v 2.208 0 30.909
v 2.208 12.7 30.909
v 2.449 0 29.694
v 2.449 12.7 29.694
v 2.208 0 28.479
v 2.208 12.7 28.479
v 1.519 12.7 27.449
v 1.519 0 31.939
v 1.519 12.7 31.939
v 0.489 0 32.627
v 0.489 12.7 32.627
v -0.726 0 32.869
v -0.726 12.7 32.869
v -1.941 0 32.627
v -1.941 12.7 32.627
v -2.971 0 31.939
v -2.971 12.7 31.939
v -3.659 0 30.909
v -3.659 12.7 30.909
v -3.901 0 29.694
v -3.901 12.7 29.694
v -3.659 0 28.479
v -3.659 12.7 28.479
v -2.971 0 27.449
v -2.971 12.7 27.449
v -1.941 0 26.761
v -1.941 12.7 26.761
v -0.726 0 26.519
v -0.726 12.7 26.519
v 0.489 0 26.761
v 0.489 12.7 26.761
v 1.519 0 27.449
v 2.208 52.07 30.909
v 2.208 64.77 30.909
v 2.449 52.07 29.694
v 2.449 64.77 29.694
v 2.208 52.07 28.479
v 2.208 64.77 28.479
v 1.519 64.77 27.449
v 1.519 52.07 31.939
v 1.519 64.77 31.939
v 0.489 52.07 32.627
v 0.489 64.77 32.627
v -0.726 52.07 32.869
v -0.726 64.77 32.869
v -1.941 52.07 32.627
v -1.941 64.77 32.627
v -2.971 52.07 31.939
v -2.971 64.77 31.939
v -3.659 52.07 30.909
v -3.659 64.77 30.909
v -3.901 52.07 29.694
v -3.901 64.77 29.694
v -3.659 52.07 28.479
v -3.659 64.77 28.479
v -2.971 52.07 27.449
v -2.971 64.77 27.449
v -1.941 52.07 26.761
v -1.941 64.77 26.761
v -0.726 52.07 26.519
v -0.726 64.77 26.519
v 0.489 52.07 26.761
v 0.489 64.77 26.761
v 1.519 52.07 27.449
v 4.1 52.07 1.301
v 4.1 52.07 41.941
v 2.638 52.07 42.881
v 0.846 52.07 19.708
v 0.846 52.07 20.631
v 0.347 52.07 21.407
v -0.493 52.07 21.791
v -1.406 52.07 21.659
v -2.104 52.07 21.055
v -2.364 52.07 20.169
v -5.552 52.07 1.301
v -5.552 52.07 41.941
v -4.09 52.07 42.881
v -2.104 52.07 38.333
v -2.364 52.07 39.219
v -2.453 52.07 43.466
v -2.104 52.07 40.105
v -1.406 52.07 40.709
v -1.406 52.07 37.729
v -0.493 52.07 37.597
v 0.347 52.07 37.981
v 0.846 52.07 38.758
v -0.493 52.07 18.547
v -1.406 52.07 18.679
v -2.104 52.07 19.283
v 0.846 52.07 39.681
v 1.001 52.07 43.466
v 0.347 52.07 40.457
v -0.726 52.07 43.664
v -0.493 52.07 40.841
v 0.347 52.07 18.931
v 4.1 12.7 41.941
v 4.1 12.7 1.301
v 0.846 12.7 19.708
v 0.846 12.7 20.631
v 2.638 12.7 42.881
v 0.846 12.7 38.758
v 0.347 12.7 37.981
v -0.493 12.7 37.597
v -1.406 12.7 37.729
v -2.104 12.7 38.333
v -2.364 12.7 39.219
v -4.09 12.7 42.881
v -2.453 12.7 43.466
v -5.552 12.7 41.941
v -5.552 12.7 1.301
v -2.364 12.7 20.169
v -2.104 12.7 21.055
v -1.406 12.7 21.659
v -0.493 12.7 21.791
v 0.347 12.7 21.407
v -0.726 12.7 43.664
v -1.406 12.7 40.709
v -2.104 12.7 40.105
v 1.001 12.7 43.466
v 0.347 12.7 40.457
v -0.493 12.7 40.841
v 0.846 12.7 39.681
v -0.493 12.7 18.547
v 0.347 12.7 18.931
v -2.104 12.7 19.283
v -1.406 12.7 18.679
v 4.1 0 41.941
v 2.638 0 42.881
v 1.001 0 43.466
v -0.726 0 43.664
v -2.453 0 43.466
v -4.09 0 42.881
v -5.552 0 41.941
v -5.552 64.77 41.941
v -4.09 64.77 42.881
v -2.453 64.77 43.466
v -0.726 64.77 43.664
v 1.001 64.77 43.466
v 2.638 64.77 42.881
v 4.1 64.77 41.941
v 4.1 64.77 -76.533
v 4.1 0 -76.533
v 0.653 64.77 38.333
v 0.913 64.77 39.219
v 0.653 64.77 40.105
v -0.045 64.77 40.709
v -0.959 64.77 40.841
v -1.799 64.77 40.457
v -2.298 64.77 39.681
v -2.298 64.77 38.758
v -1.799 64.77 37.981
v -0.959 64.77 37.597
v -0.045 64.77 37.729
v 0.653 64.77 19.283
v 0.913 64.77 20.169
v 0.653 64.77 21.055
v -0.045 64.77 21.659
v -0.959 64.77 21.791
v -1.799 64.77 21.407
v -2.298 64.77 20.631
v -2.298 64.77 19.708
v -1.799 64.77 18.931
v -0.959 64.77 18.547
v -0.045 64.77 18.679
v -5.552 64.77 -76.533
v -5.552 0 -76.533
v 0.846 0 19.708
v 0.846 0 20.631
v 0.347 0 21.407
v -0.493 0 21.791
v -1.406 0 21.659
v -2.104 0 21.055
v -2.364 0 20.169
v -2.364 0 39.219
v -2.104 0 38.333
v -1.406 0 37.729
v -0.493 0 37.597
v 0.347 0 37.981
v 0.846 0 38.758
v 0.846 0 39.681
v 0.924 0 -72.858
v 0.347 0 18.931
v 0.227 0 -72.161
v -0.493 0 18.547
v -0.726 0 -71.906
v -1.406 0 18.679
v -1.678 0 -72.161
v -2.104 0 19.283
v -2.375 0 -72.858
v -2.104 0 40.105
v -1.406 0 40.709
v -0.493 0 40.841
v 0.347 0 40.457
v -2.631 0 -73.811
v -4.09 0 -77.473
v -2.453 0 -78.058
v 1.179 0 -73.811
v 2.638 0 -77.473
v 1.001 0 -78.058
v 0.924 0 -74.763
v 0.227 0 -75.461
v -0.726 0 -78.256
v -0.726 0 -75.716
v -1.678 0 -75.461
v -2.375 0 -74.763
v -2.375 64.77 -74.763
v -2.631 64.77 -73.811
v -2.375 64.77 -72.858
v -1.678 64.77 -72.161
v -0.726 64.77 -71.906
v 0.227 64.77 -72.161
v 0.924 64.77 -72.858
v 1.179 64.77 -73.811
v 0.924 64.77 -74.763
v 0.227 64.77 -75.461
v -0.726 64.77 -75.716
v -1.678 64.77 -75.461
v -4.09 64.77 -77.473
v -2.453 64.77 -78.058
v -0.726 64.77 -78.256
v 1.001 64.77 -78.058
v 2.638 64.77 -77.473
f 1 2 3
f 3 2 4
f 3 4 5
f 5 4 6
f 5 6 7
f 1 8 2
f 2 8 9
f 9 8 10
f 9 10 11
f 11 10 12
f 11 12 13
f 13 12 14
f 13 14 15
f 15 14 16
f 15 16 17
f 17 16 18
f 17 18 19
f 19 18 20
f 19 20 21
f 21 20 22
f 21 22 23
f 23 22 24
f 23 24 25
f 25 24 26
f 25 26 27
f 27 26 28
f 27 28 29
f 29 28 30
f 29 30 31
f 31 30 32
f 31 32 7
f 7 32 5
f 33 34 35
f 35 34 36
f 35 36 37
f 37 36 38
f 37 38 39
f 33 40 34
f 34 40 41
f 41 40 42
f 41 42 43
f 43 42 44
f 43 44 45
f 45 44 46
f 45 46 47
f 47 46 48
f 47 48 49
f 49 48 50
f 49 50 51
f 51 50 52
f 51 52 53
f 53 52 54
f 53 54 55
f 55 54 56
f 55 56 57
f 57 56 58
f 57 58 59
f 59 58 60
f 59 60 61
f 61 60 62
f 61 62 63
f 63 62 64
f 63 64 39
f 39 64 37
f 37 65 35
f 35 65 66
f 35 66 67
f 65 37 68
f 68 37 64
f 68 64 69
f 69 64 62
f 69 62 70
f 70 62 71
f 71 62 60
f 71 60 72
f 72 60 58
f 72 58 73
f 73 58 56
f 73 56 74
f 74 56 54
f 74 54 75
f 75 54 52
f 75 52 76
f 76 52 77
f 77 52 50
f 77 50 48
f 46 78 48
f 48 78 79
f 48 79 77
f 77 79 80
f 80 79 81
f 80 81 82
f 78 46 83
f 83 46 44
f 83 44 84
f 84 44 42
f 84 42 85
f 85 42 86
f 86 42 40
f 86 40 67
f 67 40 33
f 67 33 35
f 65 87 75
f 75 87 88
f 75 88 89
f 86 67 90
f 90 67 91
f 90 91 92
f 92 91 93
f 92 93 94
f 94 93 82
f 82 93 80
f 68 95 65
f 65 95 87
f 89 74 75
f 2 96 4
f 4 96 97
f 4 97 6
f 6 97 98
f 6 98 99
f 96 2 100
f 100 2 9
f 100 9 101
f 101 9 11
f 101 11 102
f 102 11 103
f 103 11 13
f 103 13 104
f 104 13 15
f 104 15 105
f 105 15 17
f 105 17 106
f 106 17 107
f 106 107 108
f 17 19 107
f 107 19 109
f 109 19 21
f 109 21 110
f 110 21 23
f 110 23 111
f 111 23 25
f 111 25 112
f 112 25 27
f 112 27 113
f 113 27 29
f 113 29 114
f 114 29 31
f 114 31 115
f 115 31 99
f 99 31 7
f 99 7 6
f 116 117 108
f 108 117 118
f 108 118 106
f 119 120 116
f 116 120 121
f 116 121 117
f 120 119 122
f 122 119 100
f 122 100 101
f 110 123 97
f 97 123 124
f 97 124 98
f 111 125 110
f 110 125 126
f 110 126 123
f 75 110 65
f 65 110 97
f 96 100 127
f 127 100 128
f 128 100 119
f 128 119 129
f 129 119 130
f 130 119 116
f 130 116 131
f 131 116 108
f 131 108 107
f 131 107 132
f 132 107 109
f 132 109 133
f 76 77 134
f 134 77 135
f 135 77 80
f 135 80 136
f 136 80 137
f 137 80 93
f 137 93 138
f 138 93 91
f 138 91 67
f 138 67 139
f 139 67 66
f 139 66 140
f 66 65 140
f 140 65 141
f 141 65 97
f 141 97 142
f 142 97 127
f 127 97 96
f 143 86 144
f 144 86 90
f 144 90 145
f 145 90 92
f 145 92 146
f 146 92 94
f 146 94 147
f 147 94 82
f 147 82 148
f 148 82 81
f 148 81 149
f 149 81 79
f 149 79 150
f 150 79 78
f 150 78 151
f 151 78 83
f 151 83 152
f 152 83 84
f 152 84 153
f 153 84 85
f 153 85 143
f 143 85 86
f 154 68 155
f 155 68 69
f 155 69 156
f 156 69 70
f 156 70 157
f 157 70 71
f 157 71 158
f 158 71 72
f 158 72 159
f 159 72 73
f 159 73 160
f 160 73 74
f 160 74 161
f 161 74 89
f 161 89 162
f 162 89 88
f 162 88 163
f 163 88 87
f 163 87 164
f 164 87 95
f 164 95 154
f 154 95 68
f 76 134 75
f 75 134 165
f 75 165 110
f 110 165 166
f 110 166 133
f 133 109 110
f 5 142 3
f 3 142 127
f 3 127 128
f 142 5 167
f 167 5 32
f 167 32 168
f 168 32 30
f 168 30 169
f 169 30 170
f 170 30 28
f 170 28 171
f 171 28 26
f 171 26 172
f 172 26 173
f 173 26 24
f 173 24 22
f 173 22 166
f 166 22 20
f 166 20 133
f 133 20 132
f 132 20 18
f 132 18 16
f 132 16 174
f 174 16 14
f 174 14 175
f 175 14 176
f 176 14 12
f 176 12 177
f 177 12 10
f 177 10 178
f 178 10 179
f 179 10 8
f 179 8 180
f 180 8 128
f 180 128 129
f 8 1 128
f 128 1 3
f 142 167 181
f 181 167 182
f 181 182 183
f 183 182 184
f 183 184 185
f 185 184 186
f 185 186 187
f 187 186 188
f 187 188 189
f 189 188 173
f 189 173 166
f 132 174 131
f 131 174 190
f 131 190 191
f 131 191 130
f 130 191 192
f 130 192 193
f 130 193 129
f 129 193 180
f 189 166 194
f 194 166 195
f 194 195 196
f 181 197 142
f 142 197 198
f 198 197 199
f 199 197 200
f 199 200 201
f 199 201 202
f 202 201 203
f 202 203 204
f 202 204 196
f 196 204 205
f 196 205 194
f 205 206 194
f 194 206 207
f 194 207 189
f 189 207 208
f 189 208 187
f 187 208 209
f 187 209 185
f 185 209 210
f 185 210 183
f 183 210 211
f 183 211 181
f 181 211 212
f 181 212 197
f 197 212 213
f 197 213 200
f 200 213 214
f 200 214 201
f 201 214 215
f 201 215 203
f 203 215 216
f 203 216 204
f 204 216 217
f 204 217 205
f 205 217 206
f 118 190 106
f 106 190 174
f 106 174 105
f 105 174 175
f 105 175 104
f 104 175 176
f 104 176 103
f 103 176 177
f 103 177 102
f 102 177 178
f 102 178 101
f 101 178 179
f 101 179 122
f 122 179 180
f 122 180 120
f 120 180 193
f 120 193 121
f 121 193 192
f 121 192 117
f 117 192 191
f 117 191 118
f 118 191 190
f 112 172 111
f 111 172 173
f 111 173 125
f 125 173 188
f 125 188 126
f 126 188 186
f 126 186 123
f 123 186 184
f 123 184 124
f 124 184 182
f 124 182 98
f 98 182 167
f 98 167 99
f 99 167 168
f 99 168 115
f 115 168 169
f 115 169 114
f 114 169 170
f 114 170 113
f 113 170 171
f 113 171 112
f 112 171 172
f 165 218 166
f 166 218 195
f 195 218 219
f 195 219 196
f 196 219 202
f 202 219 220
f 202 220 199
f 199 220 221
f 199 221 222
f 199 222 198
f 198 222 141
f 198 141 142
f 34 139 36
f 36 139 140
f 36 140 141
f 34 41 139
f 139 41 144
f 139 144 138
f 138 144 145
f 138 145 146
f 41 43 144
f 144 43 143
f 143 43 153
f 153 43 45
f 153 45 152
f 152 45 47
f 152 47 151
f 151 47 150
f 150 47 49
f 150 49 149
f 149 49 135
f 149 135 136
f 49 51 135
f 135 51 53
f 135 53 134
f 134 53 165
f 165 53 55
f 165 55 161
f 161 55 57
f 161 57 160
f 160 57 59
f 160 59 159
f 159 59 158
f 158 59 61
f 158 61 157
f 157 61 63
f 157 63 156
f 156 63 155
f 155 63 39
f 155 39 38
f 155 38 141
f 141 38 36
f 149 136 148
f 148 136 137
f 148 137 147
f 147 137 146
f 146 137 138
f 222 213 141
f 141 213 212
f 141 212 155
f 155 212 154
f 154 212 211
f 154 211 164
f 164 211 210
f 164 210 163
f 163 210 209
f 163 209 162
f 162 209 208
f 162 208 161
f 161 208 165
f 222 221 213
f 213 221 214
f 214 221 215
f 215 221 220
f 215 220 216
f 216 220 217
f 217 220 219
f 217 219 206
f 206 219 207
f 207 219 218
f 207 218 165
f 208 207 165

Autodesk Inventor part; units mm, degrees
ref_plane "YZ Plane" through (0, 0, 0) normal (1, 0, 0) x (0, 1, 0)
ref_plane "XZ Plane" through (0, 0, 0) normal (0, 1, 0) x (-1, 0, 0)
ref_plane "XY Plane" through (0, 0, 0) normal (0, 0, 1) x (1, 0, 0)
sketch "Sketch1" plane through (0, 0, 0) normal (0, 1, 0) x (-1, 0, 0)
  line L0 (-6.8943, 36.0441) -> (-6.8943, -70.6359)
  line L1 (8.3457, -70.6359) -> (8.3457, 36.0441)
  arc A0 (8.3457, 36.0441) -> (-6.8943, 36.0441) centre (0.7257, 36.0441) ccw
  arc A1 (-6.8943, -70.6359) -> (8.3457, -70.6359) centre (0.7257, -70.6359) ccw
  point P0 (0, 0)
  dimension "d2" = 15.24
  dimension "d4" = 7.62
  dimension "d5" = 15.24
  dimension "d6" = 7.62
  dimension "d8" = 106.68
  dimension "d9" = 15.24
extrude "Extrusion1" add sketch "Sketch1" along normal blind 64.77
sketch "Sketch2" plane through (0, 64.77, 0) normal (0, 1, 0) x (1, 0, 0)
  line L0 (6.8943, -36.0441) -> (6.8943, 70.6359) projected
  arc A0 (-8.3457, -36.0441) -> (6.8943, -36.0441) centre (-0.7257, -36.0441) ccw projected
  point P0 (0, 0)
  point P1 (-0.7257, -39.2191)
  point P2 (-0.7257, -29.6941)
  point P3 (-0.7257, -20.1691)
  dimension "d16" = 7.62
  dimension "d47" = 0
  dimension "d48" = 0
  dimension "d49" = 6.35
  dimension "d50" = 9.525
  dimension "d51" = 9.525
hole "Hole1" at (-0.7257, 64.77, 39.2191) at (-0.7257, 64.77, 29.6941) at (-0.7257, 64.77, 20.1691) direction (0, -1, 0) diameter 3.2766 end through all clearance for "Flat Head Machine Screw (82)" size "#4" standard "Ansi Unified Screw Threads"
sketch "Sketch3" plane through (0, 64.77, 0) normal (0, 1, 0) x (1, 0, 0)
  line L0 (-8.3457, 70.6359) -> (-8.3457, -36.0441) projected
  arc A0 (6.8943, 70.6359) -> (-8.3457, 70.6359) centre (-0.7257, 70.6359) ccw projected
  point P0 (0, 0)
  point P1 (-0.7257, 73.8109)
  dimension "d25" = 7.62
  dimension "d43" = 3.175
hole "Hole2" at (-0.7257, 64.77, -73.8109) direction (0, -1, 0) diameter 3.81 end through all clearance for "Flat Head Machine Screw (82)" size "#6" standard "Ansi Unified Screw Threads"
sketch "Sketch4" plane through (0, 64.77, 0) normal (0, 1, 0) x (1, 0, 0)
  line L0 (39.3169, 103.6547) -> (4.1003, 103.6547)
  line L1 (4.1003, 103.6547) -> (4.1003, -56.0742)
  line L2 (4.1003, -56.0742) -> (39.3169, -56.0742)
  line L3 (39.3169, -56.0742) -> (39.3169, 103.6547)
  line L4 (-5.5517, 100.2529) -> (-25.9242, 100.2529)
  line L5 (-25.9242, 100.2529) -> (-25.9242, -57.002)
  line L6 (-25.9242, -57.002) -> (-5.5517, -57.002)
  line L7 (-5.5517, -57.002) -> (-5.5517, 100.2529)
  line L8 (-8.3457, 70.6359) -> (-8.3457, -36.0441) projected
  line L9 (6.8943, -36.0441) -> (6.8943, 70.6359) projected
  point P0 (0, 0)
  dimension "d34" = 2.794
  dimension "d35" = 2.794
extrude "Extrusion2" cut sketch "Sketch4" against normal blind 101.6
sketch "Sketch5" plane through (4.1003, 64.77, 41.941) normal (1, 0, 0) x (0, 0, -1)
  line L0 (-34.9815, -12.7) -> (40.64, -12.7)
  line L1 (40.64, -12.7) -> (40.64, -52.07)
  line L2 (40.64, -52.07) -> (-34.9815, -52.07)
  line L3 (-34.9815, -52.07) -> (-34.9815, -12.7)
  line L4 (0, -64.77) -> (0, 0) projected
  line L5 (0, 0) -> (118.4739, 0) projected
  line L6 (118.4739, -64.77) -> (0, -64.77) projected
  point P0 (41.941, -64.77)
  dimension "d38" = 40.64
  dimension "d39" = 12.7
  dimension "d40" = 12.7
extrude "Extrusion3" cut sketch "Sketch5" against normal blind 25.4
sketch "Sketch6" plane through (0, 64.77, 0) normal (0, 1, 0) x (1, 0, 0)
  circle A0 centre (-0.7257, -29.6941) radius 1.6383 projected
  circle A1 centre (-0.7257, -29.6941) radius 3.175
  point P0 (0, 0)
  dimension "d44" = 6.35
extrude "Extrusion4" cut sketch "Sketch6" against normal blind 101.6
properties part number "GripperArm"
